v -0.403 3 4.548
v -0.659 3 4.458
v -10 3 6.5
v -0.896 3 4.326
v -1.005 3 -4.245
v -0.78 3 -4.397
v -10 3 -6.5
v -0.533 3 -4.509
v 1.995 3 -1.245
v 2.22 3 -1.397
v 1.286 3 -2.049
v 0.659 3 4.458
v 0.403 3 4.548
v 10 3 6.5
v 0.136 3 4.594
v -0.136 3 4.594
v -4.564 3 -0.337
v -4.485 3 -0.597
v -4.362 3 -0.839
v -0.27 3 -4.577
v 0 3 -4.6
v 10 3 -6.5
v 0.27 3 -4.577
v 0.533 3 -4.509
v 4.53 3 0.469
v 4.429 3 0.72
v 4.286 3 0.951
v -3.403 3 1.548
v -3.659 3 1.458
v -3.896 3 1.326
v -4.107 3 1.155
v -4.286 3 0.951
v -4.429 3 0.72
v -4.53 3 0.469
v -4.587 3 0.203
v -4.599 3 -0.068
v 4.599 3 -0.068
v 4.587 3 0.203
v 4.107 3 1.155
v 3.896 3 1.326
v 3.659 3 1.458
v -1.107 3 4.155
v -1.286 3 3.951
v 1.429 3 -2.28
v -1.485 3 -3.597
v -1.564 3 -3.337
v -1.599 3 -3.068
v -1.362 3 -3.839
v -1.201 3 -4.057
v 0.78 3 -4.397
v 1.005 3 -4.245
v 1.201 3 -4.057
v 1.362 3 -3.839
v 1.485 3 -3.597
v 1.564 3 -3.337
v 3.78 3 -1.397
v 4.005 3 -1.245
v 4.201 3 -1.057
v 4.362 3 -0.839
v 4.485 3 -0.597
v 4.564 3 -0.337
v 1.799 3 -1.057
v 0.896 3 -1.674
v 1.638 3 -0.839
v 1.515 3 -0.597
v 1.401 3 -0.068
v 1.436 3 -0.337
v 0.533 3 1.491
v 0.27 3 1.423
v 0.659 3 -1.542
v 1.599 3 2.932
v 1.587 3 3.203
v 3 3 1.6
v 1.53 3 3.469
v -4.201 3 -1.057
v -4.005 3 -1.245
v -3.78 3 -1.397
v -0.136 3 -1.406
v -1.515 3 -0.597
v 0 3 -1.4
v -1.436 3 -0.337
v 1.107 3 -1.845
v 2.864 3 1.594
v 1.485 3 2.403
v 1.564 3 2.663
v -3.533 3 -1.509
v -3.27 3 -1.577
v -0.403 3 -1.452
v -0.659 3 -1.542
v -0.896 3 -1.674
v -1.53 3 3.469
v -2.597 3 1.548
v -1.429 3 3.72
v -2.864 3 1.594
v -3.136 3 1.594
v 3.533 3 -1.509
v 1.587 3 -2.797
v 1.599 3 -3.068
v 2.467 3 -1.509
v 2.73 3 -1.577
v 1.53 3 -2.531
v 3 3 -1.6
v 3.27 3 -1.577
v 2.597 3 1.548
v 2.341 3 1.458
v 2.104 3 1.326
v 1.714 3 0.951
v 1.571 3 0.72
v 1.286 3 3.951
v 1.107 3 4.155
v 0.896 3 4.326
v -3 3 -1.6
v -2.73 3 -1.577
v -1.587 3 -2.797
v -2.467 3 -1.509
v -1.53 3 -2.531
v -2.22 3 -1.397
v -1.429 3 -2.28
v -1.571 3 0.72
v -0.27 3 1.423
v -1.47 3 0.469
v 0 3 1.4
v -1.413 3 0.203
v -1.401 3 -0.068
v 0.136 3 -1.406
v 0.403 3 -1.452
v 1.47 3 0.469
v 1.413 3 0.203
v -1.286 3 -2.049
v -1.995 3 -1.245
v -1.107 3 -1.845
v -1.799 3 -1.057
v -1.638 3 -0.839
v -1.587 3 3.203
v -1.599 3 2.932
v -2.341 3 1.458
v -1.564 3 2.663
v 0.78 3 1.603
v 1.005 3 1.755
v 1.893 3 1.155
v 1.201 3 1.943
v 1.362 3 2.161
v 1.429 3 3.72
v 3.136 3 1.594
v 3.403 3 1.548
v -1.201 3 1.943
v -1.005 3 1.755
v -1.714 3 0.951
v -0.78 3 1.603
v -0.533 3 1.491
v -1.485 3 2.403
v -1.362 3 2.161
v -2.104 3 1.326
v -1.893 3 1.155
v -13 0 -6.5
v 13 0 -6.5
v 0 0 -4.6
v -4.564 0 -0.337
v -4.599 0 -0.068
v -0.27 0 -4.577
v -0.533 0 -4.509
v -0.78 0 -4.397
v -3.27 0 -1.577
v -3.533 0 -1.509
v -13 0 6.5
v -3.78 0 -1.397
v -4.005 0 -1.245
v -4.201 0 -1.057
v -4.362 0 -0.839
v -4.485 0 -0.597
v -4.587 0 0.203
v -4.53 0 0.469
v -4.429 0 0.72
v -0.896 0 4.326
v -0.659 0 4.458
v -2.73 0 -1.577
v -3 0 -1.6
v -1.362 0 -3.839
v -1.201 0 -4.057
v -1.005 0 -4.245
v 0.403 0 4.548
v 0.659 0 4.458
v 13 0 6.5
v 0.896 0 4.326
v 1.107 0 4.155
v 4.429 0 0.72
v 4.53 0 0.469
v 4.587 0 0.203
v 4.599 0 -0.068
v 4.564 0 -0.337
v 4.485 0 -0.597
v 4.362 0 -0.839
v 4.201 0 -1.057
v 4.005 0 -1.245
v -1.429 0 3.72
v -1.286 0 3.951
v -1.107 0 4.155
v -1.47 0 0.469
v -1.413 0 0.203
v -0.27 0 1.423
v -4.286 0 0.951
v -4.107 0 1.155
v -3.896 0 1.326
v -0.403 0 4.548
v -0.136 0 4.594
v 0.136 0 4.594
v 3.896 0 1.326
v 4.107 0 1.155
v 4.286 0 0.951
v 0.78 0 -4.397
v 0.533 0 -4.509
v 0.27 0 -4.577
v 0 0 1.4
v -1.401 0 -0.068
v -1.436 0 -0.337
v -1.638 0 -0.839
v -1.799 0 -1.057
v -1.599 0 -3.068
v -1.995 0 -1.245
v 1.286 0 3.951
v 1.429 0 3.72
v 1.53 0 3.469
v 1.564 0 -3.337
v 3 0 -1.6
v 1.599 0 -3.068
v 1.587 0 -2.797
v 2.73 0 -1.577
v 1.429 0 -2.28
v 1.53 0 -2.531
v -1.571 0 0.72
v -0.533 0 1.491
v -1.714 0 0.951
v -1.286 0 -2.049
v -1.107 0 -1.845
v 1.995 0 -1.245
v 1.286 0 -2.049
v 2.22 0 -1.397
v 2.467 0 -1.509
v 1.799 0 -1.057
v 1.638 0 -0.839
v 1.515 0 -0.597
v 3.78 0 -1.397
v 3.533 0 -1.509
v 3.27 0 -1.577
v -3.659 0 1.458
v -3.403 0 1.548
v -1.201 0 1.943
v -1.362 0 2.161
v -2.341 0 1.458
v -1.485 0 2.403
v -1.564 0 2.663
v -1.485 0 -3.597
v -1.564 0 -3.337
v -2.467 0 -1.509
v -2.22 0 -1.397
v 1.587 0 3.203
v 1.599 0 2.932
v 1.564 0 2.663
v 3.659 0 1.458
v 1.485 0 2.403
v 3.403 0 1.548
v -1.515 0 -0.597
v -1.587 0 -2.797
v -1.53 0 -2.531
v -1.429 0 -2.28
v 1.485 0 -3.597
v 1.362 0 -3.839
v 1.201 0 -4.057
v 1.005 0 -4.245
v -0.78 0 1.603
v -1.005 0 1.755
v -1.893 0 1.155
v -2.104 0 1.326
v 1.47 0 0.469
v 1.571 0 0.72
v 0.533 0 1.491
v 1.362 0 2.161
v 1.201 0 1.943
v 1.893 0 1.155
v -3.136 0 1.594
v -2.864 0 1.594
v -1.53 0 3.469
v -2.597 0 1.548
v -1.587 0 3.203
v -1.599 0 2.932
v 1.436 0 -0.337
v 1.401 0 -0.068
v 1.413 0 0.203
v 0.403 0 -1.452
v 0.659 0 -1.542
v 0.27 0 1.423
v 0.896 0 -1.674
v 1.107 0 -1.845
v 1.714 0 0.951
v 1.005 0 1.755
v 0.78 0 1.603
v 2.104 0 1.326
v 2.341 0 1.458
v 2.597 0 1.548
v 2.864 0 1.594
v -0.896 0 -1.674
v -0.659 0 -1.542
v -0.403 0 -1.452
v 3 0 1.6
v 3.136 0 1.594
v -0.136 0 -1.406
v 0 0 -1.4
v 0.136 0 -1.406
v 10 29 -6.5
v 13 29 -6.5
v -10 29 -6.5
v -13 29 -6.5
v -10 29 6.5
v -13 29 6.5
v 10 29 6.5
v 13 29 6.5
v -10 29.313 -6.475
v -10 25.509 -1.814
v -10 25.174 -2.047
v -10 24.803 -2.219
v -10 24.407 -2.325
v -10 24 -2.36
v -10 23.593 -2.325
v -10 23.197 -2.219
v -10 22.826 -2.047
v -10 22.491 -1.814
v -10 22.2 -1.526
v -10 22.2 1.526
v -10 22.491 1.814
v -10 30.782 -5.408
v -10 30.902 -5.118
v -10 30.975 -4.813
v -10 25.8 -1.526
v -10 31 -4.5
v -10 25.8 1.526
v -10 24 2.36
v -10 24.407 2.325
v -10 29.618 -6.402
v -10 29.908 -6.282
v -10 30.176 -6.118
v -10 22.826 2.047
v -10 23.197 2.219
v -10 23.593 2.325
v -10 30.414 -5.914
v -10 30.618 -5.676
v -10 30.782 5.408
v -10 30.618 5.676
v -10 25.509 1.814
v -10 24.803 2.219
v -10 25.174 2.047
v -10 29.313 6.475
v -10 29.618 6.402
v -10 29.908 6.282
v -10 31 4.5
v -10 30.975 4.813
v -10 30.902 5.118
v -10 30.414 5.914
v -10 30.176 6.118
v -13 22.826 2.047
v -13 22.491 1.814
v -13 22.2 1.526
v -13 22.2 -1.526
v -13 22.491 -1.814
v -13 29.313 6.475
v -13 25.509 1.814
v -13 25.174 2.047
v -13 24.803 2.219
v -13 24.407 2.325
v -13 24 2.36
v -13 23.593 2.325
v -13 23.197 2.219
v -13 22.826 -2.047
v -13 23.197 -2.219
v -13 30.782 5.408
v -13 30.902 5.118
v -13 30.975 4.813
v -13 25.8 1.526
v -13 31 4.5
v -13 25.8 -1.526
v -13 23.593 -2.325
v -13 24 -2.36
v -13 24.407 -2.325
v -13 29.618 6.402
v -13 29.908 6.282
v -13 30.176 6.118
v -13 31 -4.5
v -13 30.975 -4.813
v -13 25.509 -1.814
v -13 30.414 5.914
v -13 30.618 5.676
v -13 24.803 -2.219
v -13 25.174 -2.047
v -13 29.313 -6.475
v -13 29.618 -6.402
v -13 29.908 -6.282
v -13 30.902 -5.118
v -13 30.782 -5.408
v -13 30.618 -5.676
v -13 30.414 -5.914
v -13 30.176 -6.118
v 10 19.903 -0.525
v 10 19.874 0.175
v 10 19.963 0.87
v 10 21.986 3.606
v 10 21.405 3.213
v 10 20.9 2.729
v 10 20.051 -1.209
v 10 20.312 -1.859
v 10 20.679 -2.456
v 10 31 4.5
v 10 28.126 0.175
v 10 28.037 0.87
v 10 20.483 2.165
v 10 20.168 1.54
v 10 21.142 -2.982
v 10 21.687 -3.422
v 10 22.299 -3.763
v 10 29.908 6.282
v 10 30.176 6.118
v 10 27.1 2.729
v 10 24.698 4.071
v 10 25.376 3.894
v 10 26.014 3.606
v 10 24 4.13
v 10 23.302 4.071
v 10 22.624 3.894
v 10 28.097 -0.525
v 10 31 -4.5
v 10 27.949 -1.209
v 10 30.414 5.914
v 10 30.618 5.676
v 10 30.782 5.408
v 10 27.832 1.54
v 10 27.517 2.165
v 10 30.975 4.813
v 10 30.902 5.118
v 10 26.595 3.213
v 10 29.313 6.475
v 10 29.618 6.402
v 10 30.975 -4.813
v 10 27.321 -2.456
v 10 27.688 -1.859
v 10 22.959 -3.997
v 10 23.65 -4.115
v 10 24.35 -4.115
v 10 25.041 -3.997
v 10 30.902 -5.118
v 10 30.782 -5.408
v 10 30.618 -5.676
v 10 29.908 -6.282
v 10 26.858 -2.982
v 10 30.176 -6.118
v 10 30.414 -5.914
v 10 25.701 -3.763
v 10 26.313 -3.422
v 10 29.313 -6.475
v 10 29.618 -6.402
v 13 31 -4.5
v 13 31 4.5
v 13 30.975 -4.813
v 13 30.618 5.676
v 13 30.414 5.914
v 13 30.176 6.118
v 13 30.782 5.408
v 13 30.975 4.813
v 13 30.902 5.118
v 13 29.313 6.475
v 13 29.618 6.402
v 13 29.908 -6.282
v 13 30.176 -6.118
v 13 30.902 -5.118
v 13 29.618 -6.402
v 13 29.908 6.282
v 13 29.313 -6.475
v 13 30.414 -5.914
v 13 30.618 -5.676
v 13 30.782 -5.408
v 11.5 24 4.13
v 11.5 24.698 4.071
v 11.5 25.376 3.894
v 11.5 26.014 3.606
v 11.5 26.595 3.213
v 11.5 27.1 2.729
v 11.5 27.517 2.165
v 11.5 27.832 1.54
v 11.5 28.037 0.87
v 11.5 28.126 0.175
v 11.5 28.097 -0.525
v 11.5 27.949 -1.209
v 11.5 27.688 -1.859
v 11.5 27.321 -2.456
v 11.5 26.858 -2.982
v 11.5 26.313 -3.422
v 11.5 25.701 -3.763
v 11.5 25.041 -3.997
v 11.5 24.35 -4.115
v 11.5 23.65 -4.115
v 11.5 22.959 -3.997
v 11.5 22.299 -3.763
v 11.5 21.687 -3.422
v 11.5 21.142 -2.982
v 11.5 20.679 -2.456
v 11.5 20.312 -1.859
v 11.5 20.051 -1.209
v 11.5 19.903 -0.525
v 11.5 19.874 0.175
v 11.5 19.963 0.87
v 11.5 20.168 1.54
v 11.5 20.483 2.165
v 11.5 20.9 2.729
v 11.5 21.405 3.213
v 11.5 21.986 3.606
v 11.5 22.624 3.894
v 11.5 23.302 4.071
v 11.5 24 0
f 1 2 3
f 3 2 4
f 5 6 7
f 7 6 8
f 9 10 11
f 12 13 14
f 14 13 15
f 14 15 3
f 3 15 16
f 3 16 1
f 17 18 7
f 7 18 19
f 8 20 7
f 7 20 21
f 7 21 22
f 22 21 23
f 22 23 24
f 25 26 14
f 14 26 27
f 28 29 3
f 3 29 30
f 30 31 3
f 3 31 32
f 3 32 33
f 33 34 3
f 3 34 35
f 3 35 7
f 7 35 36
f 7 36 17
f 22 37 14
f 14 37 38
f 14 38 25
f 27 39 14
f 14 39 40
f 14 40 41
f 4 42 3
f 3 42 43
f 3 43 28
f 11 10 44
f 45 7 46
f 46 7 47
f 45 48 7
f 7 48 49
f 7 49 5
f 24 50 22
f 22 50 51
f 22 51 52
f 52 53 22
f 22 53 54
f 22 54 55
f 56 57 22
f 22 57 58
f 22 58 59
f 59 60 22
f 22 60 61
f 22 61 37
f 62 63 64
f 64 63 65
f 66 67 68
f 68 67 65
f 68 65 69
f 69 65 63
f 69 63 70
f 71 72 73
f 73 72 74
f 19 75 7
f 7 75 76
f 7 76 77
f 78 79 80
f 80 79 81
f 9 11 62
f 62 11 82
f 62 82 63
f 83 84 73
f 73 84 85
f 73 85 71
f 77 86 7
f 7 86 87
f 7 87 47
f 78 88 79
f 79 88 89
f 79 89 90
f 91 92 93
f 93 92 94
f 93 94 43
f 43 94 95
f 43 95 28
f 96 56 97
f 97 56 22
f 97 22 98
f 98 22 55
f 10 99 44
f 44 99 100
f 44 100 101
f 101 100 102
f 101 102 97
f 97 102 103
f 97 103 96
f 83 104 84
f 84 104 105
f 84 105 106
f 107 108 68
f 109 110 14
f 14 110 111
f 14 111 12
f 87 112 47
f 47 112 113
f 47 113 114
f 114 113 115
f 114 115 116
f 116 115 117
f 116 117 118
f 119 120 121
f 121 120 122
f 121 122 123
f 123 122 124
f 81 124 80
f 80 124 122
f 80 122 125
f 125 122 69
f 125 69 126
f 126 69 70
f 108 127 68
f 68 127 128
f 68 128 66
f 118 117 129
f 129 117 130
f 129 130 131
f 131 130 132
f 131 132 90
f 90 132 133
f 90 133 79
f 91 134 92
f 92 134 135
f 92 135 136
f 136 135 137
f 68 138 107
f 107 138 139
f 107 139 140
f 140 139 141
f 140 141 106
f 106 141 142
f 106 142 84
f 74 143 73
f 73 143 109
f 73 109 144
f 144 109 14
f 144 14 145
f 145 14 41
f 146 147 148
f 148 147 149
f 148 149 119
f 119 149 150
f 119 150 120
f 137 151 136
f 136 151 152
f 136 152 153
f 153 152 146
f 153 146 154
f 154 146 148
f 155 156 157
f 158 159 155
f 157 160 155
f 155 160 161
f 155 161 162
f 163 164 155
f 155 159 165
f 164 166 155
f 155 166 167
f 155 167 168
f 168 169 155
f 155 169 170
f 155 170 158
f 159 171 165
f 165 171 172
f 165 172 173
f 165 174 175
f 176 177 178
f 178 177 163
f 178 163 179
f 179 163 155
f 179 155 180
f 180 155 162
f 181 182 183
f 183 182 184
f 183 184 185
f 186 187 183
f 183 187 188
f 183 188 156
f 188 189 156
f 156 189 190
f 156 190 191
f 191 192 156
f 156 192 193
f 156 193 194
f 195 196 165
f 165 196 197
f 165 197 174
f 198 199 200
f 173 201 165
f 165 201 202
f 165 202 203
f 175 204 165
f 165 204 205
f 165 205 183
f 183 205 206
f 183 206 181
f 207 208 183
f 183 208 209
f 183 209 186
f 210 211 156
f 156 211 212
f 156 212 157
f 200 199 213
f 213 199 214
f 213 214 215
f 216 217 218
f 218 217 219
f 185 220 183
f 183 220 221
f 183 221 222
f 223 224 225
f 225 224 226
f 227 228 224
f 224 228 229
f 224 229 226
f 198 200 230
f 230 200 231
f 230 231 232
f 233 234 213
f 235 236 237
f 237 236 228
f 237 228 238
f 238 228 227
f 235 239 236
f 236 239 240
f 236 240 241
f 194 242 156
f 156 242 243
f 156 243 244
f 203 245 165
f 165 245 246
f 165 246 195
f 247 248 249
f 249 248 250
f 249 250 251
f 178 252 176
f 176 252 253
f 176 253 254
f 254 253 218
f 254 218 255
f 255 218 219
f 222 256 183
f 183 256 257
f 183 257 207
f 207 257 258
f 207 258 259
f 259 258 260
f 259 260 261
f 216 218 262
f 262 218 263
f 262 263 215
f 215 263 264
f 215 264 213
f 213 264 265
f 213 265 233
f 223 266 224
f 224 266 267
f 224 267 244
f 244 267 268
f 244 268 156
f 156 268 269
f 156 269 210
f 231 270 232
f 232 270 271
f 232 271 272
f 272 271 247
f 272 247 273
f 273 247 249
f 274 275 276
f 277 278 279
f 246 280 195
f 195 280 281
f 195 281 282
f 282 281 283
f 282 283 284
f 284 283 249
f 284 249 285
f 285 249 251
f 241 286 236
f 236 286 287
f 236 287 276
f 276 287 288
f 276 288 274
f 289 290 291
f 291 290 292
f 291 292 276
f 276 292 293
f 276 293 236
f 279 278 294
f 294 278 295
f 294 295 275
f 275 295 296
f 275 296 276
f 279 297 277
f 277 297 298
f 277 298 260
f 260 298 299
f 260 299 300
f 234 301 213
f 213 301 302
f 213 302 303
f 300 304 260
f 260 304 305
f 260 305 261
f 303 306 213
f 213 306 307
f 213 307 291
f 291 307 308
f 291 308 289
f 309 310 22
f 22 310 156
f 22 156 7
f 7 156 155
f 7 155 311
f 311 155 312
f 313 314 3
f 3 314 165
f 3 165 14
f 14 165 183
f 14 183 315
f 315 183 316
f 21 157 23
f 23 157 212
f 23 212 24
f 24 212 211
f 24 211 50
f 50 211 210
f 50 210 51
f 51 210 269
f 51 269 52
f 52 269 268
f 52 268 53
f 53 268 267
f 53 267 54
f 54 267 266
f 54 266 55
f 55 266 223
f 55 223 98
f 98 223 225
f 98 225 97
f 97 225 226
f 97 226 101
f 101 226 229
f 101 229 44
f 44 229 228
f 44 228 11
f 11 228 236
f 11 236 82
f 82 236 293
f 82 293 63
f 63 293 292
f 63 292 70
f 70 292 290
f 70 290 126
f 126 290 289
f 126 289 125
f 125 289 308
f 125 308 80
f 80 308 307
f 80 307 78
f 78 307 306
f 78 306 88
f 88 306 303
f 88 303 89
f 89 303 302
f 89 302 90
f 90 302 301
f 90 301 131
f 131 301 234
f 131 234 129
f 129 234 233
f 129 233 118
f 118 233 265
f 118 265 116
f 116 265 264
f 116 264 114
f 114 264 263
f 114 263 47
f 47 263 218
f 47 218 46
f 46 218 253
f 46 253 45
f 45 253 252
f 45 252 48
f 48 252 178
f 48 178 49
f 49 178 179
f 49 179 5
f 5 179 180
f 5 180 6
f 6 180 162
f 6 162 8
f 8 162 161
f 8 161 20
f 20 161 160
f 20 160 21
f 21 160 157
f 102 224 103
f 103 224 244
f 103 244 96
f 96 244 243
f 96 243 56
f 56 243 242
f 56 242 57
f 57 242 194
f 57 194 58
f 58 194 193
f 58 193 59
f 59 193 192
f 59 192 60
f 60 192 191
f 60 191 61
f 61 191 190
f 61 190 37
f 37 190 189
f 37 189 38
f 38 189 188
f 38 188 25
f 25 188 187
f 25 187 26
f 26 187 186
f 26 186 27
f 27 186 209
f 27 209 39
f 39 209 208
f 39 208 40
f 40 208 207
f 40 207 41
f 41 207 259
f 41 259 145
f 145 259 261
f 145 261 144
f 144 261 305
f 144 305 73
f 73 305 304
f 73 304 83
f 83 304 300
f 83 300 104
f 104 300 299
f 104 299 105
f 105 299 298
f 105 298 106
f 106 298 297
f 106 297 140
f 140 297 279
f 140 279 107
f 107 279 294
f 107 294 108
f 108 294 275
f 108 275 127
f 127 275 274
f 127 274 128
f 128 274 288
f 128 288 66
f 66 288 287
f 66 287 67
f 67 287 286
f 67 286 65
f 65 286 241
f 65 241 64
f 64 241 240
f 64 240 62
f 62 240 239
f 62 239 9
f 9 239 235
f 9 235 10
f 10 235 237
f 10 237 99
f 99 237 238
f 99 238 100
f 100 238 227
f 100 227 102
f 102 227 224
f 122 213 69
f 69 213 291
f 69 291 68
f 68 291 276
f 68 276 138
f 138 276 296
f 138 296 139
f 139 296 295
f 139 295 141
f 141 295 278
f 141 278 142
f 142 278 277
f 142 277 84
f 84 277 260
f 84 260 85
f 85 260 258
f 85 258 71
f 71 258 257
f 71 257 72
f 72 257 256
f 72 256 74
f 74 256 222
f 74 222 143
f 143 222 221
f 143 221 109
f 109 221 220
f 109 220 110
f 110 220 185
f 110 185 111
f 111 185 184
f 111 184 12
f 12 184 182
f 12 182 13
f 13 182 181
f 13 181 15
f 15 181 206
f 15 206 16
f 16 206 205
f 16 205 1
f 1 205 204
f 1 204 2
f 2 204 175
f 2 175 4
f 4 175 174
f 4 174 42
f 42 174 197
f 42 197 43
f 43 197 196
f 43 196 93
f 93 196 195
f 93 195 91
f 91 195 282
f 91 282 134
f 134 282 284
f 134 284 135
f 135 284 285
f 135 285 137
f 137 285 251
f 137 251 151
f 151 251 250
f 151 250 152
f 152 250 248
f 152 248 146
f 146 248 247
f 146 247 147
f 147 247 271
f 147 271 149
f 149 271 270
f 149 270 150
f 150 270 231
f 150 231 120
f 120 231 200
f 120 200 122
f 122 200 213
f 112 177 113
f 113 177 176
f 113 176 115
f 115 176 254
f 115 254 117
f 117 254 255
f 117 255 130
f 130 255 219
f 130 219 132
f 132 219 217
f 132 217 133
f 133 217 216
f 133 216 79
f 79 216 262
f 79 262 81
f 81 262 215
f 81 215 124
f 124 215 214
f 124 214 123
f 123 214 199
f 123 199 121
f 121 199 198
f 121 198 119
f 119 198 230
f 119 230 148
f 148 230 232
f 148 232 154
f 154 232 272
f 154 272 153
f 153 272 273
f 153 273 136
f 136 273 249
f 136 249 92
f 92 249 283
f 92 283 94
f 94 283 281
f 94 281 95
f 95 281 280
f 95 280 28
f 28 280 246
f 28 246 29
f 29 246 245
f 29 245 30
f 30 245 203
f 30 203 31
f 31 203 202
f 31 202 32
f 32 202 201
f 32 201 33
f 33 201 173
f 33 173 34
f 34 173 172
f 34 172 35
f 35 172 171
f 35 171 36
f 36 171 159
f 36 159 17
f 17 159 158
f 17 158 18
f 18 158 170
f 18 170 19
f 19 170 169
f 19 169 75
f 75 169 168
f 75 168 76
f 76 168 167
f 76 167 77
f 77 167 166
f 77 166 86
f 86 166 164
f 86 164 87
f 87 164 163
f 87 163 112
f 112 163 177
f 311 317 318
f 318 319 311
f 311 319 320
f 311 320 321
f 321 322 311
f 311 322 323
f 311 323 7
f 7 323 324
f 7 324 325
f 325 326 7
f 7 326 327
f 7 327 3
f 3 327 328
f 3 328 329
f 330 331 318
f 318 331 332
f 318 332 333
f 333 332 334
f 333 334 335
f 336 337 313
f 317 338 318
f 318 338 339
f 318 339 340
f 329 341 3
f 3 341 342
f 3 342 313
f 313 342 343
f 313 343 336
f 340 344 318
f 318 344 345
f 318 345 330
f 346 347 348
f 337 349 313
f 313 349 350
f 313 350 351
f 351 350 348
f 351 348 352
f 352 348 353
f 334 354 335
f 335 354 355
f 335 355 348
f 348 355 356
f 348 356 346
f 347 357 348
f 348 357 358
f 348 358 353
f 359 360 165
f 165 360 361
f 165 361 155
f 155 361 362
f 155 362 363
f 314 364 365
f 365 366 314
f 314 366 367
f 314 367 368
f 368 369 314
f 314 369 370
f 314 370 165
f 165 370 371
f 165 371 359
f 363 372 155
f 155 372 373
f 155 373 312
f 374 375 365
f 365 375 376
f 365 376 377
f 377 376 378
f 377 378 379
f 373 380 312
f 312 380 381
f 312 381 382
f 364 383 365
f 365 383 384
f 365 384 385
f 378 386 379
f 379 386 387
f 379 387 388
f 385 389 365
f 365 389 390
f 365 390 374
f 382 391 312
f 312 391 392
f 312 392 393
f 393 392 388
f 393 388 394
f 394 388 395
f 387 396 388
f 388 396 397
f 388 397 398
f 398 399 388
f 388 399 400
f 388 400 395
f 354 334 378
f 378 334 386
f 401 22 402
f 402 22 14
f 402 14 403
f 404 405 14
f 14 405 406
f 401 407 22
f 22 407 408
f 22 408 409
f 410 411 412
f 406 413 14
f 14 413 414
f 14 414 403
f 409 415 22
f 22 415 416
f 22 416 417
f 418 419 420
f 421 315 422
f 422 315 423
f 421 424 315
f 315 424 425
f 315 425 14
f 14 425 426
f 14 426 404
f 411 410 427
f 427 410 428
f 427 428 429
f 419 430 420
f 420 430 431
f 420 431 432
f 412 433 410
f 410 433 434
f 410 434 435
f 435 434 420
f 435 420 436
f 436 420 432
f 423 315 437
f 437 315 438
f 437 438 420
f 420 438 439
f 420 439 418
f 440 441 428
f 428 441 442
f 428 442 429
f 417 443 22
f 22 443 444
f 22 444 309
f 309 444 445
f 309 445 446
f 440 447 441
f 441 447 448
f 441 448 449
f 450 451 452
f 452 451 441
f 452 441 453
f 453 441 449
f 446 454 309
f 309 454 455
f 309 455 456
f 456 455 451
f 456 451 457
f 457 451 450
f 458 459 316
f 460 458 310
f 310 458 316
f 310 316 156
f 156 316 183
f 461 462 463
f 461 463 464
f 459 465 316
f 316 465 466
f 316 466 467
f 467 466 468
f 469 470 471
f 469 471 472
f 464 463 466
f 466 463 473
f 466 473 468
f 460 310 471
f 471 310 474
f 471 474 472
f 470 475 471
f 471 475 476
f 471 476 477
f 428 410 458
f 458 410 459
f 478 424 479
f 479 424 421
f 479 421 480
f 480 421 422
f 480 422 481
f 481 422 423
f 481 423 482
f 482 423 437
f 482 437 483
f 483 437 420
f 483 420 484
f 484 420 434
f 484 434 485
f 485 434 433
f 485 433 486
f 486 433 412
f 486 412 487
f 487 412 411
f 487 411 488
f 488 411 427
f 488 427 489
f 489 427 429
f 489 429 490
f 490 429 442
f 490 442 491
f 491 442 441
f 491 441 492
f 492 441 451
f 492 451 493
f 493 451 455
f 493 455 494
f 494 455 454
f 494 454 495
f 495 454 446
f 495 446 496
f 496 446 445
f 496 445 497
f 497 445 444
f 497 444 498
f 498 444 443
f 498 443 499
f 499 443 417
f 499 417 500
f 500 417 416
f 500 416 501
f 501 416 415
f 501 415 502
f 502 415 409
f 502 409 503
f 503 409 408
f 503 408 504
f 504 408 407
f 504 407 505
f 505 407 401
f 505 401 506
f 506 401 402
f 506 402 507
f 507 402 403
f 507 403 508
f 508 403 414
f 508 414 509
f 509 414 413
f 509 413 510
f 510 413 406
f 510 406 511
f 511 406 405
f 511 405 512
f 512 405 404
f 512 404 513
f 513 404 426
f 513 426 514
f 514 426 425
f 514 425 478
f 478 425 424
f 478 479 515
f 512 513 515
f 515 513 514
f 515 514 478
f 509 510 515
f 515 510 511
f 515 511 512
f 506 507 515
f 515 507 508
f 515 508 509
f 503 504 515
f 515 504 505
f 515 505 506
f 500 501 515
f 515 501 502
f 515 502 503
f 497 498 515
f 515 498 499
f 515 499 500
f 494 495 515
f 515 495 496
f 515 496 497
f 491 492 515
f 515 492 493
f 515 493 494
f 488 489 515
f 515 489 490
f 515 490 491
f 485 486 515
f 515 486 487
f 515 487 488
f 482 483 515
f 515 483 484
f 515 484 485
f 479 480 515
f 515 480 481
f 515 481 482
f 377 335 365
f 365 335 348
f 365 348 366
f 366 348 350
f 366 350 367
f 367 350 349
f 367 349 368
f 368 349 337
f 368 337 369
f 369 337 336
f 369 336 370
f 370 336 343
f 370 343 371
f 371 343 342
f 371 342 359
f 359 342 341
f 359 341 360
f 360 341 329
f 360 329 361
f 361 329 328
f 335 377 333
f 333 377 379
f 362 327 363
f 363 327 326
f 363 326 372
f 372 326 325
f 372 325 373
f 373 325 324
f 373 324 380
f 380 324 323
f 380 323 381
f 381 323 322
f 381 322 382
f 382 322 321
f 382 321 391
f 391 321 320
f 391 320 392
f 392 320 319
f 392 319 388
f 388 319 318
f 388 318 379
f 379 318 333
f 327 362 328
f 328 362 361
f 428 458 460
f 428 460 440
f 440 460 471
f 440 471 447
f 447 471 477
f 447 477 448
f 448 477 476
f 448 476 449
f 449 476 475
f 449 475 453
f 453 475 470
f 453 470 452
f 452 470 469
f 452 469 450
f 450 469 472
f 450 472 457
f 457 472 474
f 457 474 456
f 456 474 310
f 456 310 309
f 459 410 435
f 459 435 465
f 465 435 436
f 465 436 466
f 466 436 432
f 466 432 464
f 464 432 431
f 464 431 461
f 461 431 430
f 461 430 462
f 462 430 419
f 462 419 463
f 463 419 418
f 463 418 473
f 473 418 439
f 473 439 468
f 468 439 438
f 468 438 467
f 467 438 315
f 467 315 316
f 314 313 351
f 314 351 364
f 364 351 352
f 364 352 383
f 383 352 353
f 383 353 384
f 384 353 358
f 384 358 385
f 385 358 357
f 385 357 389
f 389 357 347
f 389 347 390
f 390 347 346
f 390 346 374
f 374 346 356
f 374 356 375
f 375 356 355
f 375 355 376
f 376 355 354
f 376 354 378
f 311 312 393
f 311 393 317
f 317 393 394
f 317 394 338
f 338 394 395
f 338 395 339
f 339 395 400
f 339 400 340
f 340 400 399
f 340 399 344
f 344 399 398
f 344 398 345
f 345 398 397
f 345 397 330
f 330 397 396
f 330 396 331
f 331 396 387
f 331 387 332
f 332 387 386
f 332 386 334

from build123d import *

# Parameters (mm, degrees)
SKETCH_1_W          = 20
SKETCH_1_H          = 13
SKETCH_1_R          = 1.6
EXTRUDE_1_DEPTH     = 3
SKETCH_2_W          = 3
SKETCH_2_H          = 13
EXTRUDE_2_DEPTH     = 31
SKETCH_3_R          = 4.13
CUT_EXTRUDE_1_DEPTH = 1.5
CUT_EXTRUDE_2_DEPTH = 10
FILLET_1_R          = 2


with BuildPart() as part:
    # 草图1 → 凸台-拉伸1 (new body)
    with BuildSketch(Plane(origin=(0, 0, 0), x_dir=(1, 0, 0), z_dir=(0, 1, 0))):
        Rectangle(SKETCH_1_W, SKETCH_1_H)
        with Locations(Location((0, 3, 0), (0, 0, 270))):
            Circle(SKETCH_1_R, mode=Mode.SUBTRACT)
        with Locations(Location((3, 0, 0), (0, 0, 270))):
            Circle(SKETCH_1_R, mode=Mode.SUBTRACT)
        with Locations(Location((0, -3, 0), (0, 0, 90))):
            Circle(SKETCH_1_R, mode=Mode.SUBTRACT)
        with Locations(Location((-3, 0, 0), (0, 0, 90))):
            Circle(SKETCH_1_R, mode=Mode.SUBTRACT)
    extrude(amount=EXTRUDE_1_DEPTH)

    # 草图2 → 凸台-拉伸2 (add)
    with BuildSketch(Plane(origin=(0, 0, 0), x_dir=(1, 0, 0), z_dir=(0, 1, 0))):
        with Locations((11.5, 0)):
            Rectangle(SKETCH_2_W, SKETCH_2_H)
        with Locations((-11.5, 0)):
            Rectangle(SKETCH_2_W, SKETCH_2_H)
    extrude(amount=EXTRUDE_2_DEPTH)

    # 草图3 → 切除-拉伸1 (cut)
    with BuildSketch(Plane.ZY.offset(-10)):
        with Locations((0, 24)):
            Circle(SKETCH_3_R)
    extrude(amount=-CUT_EXTRUDE_1_DEPTH, mode=Mode.SUBTRACT)

    # 草图4 → 切除-拉伸2 (cut)
    with BuildSketch(Plane(origin=(-10, 0, 0), x_dir=(0, 0, -1), z_dir=(1, 0, 0))):
        with BuildLine():
            Line((1.526302722, 25.8), (-1.526302722, 25.8))
            ThreePointArc((-1.526302722, 25.8), (-2.36, 24), (-1.526302722, 22.2))
            Line((-1.526302722, 22.2), (1.526302722, 22.2))
            ThreePointArc((1.526302722, 22.2), (2.36, 24), (1.526302722, 25.8))
        make_face()
    extrude(amount=-CUT_EXTRUDE_2_DEPTH, mode=Mode.SUBTRACT)

    # 圆角1
    fillet_1_edges = [part.edges().sort_by_distance(p)[0] for p in [
        (-11.5, 31, -6.5),
        (-11.5, 31, 6.5),
        (11.5, 31, 6.5),
        (11.5, 31, -6.5),
    ]]
    fillet(fillet_1_edges, radius=FILLET_1_R)


solid = part.part
